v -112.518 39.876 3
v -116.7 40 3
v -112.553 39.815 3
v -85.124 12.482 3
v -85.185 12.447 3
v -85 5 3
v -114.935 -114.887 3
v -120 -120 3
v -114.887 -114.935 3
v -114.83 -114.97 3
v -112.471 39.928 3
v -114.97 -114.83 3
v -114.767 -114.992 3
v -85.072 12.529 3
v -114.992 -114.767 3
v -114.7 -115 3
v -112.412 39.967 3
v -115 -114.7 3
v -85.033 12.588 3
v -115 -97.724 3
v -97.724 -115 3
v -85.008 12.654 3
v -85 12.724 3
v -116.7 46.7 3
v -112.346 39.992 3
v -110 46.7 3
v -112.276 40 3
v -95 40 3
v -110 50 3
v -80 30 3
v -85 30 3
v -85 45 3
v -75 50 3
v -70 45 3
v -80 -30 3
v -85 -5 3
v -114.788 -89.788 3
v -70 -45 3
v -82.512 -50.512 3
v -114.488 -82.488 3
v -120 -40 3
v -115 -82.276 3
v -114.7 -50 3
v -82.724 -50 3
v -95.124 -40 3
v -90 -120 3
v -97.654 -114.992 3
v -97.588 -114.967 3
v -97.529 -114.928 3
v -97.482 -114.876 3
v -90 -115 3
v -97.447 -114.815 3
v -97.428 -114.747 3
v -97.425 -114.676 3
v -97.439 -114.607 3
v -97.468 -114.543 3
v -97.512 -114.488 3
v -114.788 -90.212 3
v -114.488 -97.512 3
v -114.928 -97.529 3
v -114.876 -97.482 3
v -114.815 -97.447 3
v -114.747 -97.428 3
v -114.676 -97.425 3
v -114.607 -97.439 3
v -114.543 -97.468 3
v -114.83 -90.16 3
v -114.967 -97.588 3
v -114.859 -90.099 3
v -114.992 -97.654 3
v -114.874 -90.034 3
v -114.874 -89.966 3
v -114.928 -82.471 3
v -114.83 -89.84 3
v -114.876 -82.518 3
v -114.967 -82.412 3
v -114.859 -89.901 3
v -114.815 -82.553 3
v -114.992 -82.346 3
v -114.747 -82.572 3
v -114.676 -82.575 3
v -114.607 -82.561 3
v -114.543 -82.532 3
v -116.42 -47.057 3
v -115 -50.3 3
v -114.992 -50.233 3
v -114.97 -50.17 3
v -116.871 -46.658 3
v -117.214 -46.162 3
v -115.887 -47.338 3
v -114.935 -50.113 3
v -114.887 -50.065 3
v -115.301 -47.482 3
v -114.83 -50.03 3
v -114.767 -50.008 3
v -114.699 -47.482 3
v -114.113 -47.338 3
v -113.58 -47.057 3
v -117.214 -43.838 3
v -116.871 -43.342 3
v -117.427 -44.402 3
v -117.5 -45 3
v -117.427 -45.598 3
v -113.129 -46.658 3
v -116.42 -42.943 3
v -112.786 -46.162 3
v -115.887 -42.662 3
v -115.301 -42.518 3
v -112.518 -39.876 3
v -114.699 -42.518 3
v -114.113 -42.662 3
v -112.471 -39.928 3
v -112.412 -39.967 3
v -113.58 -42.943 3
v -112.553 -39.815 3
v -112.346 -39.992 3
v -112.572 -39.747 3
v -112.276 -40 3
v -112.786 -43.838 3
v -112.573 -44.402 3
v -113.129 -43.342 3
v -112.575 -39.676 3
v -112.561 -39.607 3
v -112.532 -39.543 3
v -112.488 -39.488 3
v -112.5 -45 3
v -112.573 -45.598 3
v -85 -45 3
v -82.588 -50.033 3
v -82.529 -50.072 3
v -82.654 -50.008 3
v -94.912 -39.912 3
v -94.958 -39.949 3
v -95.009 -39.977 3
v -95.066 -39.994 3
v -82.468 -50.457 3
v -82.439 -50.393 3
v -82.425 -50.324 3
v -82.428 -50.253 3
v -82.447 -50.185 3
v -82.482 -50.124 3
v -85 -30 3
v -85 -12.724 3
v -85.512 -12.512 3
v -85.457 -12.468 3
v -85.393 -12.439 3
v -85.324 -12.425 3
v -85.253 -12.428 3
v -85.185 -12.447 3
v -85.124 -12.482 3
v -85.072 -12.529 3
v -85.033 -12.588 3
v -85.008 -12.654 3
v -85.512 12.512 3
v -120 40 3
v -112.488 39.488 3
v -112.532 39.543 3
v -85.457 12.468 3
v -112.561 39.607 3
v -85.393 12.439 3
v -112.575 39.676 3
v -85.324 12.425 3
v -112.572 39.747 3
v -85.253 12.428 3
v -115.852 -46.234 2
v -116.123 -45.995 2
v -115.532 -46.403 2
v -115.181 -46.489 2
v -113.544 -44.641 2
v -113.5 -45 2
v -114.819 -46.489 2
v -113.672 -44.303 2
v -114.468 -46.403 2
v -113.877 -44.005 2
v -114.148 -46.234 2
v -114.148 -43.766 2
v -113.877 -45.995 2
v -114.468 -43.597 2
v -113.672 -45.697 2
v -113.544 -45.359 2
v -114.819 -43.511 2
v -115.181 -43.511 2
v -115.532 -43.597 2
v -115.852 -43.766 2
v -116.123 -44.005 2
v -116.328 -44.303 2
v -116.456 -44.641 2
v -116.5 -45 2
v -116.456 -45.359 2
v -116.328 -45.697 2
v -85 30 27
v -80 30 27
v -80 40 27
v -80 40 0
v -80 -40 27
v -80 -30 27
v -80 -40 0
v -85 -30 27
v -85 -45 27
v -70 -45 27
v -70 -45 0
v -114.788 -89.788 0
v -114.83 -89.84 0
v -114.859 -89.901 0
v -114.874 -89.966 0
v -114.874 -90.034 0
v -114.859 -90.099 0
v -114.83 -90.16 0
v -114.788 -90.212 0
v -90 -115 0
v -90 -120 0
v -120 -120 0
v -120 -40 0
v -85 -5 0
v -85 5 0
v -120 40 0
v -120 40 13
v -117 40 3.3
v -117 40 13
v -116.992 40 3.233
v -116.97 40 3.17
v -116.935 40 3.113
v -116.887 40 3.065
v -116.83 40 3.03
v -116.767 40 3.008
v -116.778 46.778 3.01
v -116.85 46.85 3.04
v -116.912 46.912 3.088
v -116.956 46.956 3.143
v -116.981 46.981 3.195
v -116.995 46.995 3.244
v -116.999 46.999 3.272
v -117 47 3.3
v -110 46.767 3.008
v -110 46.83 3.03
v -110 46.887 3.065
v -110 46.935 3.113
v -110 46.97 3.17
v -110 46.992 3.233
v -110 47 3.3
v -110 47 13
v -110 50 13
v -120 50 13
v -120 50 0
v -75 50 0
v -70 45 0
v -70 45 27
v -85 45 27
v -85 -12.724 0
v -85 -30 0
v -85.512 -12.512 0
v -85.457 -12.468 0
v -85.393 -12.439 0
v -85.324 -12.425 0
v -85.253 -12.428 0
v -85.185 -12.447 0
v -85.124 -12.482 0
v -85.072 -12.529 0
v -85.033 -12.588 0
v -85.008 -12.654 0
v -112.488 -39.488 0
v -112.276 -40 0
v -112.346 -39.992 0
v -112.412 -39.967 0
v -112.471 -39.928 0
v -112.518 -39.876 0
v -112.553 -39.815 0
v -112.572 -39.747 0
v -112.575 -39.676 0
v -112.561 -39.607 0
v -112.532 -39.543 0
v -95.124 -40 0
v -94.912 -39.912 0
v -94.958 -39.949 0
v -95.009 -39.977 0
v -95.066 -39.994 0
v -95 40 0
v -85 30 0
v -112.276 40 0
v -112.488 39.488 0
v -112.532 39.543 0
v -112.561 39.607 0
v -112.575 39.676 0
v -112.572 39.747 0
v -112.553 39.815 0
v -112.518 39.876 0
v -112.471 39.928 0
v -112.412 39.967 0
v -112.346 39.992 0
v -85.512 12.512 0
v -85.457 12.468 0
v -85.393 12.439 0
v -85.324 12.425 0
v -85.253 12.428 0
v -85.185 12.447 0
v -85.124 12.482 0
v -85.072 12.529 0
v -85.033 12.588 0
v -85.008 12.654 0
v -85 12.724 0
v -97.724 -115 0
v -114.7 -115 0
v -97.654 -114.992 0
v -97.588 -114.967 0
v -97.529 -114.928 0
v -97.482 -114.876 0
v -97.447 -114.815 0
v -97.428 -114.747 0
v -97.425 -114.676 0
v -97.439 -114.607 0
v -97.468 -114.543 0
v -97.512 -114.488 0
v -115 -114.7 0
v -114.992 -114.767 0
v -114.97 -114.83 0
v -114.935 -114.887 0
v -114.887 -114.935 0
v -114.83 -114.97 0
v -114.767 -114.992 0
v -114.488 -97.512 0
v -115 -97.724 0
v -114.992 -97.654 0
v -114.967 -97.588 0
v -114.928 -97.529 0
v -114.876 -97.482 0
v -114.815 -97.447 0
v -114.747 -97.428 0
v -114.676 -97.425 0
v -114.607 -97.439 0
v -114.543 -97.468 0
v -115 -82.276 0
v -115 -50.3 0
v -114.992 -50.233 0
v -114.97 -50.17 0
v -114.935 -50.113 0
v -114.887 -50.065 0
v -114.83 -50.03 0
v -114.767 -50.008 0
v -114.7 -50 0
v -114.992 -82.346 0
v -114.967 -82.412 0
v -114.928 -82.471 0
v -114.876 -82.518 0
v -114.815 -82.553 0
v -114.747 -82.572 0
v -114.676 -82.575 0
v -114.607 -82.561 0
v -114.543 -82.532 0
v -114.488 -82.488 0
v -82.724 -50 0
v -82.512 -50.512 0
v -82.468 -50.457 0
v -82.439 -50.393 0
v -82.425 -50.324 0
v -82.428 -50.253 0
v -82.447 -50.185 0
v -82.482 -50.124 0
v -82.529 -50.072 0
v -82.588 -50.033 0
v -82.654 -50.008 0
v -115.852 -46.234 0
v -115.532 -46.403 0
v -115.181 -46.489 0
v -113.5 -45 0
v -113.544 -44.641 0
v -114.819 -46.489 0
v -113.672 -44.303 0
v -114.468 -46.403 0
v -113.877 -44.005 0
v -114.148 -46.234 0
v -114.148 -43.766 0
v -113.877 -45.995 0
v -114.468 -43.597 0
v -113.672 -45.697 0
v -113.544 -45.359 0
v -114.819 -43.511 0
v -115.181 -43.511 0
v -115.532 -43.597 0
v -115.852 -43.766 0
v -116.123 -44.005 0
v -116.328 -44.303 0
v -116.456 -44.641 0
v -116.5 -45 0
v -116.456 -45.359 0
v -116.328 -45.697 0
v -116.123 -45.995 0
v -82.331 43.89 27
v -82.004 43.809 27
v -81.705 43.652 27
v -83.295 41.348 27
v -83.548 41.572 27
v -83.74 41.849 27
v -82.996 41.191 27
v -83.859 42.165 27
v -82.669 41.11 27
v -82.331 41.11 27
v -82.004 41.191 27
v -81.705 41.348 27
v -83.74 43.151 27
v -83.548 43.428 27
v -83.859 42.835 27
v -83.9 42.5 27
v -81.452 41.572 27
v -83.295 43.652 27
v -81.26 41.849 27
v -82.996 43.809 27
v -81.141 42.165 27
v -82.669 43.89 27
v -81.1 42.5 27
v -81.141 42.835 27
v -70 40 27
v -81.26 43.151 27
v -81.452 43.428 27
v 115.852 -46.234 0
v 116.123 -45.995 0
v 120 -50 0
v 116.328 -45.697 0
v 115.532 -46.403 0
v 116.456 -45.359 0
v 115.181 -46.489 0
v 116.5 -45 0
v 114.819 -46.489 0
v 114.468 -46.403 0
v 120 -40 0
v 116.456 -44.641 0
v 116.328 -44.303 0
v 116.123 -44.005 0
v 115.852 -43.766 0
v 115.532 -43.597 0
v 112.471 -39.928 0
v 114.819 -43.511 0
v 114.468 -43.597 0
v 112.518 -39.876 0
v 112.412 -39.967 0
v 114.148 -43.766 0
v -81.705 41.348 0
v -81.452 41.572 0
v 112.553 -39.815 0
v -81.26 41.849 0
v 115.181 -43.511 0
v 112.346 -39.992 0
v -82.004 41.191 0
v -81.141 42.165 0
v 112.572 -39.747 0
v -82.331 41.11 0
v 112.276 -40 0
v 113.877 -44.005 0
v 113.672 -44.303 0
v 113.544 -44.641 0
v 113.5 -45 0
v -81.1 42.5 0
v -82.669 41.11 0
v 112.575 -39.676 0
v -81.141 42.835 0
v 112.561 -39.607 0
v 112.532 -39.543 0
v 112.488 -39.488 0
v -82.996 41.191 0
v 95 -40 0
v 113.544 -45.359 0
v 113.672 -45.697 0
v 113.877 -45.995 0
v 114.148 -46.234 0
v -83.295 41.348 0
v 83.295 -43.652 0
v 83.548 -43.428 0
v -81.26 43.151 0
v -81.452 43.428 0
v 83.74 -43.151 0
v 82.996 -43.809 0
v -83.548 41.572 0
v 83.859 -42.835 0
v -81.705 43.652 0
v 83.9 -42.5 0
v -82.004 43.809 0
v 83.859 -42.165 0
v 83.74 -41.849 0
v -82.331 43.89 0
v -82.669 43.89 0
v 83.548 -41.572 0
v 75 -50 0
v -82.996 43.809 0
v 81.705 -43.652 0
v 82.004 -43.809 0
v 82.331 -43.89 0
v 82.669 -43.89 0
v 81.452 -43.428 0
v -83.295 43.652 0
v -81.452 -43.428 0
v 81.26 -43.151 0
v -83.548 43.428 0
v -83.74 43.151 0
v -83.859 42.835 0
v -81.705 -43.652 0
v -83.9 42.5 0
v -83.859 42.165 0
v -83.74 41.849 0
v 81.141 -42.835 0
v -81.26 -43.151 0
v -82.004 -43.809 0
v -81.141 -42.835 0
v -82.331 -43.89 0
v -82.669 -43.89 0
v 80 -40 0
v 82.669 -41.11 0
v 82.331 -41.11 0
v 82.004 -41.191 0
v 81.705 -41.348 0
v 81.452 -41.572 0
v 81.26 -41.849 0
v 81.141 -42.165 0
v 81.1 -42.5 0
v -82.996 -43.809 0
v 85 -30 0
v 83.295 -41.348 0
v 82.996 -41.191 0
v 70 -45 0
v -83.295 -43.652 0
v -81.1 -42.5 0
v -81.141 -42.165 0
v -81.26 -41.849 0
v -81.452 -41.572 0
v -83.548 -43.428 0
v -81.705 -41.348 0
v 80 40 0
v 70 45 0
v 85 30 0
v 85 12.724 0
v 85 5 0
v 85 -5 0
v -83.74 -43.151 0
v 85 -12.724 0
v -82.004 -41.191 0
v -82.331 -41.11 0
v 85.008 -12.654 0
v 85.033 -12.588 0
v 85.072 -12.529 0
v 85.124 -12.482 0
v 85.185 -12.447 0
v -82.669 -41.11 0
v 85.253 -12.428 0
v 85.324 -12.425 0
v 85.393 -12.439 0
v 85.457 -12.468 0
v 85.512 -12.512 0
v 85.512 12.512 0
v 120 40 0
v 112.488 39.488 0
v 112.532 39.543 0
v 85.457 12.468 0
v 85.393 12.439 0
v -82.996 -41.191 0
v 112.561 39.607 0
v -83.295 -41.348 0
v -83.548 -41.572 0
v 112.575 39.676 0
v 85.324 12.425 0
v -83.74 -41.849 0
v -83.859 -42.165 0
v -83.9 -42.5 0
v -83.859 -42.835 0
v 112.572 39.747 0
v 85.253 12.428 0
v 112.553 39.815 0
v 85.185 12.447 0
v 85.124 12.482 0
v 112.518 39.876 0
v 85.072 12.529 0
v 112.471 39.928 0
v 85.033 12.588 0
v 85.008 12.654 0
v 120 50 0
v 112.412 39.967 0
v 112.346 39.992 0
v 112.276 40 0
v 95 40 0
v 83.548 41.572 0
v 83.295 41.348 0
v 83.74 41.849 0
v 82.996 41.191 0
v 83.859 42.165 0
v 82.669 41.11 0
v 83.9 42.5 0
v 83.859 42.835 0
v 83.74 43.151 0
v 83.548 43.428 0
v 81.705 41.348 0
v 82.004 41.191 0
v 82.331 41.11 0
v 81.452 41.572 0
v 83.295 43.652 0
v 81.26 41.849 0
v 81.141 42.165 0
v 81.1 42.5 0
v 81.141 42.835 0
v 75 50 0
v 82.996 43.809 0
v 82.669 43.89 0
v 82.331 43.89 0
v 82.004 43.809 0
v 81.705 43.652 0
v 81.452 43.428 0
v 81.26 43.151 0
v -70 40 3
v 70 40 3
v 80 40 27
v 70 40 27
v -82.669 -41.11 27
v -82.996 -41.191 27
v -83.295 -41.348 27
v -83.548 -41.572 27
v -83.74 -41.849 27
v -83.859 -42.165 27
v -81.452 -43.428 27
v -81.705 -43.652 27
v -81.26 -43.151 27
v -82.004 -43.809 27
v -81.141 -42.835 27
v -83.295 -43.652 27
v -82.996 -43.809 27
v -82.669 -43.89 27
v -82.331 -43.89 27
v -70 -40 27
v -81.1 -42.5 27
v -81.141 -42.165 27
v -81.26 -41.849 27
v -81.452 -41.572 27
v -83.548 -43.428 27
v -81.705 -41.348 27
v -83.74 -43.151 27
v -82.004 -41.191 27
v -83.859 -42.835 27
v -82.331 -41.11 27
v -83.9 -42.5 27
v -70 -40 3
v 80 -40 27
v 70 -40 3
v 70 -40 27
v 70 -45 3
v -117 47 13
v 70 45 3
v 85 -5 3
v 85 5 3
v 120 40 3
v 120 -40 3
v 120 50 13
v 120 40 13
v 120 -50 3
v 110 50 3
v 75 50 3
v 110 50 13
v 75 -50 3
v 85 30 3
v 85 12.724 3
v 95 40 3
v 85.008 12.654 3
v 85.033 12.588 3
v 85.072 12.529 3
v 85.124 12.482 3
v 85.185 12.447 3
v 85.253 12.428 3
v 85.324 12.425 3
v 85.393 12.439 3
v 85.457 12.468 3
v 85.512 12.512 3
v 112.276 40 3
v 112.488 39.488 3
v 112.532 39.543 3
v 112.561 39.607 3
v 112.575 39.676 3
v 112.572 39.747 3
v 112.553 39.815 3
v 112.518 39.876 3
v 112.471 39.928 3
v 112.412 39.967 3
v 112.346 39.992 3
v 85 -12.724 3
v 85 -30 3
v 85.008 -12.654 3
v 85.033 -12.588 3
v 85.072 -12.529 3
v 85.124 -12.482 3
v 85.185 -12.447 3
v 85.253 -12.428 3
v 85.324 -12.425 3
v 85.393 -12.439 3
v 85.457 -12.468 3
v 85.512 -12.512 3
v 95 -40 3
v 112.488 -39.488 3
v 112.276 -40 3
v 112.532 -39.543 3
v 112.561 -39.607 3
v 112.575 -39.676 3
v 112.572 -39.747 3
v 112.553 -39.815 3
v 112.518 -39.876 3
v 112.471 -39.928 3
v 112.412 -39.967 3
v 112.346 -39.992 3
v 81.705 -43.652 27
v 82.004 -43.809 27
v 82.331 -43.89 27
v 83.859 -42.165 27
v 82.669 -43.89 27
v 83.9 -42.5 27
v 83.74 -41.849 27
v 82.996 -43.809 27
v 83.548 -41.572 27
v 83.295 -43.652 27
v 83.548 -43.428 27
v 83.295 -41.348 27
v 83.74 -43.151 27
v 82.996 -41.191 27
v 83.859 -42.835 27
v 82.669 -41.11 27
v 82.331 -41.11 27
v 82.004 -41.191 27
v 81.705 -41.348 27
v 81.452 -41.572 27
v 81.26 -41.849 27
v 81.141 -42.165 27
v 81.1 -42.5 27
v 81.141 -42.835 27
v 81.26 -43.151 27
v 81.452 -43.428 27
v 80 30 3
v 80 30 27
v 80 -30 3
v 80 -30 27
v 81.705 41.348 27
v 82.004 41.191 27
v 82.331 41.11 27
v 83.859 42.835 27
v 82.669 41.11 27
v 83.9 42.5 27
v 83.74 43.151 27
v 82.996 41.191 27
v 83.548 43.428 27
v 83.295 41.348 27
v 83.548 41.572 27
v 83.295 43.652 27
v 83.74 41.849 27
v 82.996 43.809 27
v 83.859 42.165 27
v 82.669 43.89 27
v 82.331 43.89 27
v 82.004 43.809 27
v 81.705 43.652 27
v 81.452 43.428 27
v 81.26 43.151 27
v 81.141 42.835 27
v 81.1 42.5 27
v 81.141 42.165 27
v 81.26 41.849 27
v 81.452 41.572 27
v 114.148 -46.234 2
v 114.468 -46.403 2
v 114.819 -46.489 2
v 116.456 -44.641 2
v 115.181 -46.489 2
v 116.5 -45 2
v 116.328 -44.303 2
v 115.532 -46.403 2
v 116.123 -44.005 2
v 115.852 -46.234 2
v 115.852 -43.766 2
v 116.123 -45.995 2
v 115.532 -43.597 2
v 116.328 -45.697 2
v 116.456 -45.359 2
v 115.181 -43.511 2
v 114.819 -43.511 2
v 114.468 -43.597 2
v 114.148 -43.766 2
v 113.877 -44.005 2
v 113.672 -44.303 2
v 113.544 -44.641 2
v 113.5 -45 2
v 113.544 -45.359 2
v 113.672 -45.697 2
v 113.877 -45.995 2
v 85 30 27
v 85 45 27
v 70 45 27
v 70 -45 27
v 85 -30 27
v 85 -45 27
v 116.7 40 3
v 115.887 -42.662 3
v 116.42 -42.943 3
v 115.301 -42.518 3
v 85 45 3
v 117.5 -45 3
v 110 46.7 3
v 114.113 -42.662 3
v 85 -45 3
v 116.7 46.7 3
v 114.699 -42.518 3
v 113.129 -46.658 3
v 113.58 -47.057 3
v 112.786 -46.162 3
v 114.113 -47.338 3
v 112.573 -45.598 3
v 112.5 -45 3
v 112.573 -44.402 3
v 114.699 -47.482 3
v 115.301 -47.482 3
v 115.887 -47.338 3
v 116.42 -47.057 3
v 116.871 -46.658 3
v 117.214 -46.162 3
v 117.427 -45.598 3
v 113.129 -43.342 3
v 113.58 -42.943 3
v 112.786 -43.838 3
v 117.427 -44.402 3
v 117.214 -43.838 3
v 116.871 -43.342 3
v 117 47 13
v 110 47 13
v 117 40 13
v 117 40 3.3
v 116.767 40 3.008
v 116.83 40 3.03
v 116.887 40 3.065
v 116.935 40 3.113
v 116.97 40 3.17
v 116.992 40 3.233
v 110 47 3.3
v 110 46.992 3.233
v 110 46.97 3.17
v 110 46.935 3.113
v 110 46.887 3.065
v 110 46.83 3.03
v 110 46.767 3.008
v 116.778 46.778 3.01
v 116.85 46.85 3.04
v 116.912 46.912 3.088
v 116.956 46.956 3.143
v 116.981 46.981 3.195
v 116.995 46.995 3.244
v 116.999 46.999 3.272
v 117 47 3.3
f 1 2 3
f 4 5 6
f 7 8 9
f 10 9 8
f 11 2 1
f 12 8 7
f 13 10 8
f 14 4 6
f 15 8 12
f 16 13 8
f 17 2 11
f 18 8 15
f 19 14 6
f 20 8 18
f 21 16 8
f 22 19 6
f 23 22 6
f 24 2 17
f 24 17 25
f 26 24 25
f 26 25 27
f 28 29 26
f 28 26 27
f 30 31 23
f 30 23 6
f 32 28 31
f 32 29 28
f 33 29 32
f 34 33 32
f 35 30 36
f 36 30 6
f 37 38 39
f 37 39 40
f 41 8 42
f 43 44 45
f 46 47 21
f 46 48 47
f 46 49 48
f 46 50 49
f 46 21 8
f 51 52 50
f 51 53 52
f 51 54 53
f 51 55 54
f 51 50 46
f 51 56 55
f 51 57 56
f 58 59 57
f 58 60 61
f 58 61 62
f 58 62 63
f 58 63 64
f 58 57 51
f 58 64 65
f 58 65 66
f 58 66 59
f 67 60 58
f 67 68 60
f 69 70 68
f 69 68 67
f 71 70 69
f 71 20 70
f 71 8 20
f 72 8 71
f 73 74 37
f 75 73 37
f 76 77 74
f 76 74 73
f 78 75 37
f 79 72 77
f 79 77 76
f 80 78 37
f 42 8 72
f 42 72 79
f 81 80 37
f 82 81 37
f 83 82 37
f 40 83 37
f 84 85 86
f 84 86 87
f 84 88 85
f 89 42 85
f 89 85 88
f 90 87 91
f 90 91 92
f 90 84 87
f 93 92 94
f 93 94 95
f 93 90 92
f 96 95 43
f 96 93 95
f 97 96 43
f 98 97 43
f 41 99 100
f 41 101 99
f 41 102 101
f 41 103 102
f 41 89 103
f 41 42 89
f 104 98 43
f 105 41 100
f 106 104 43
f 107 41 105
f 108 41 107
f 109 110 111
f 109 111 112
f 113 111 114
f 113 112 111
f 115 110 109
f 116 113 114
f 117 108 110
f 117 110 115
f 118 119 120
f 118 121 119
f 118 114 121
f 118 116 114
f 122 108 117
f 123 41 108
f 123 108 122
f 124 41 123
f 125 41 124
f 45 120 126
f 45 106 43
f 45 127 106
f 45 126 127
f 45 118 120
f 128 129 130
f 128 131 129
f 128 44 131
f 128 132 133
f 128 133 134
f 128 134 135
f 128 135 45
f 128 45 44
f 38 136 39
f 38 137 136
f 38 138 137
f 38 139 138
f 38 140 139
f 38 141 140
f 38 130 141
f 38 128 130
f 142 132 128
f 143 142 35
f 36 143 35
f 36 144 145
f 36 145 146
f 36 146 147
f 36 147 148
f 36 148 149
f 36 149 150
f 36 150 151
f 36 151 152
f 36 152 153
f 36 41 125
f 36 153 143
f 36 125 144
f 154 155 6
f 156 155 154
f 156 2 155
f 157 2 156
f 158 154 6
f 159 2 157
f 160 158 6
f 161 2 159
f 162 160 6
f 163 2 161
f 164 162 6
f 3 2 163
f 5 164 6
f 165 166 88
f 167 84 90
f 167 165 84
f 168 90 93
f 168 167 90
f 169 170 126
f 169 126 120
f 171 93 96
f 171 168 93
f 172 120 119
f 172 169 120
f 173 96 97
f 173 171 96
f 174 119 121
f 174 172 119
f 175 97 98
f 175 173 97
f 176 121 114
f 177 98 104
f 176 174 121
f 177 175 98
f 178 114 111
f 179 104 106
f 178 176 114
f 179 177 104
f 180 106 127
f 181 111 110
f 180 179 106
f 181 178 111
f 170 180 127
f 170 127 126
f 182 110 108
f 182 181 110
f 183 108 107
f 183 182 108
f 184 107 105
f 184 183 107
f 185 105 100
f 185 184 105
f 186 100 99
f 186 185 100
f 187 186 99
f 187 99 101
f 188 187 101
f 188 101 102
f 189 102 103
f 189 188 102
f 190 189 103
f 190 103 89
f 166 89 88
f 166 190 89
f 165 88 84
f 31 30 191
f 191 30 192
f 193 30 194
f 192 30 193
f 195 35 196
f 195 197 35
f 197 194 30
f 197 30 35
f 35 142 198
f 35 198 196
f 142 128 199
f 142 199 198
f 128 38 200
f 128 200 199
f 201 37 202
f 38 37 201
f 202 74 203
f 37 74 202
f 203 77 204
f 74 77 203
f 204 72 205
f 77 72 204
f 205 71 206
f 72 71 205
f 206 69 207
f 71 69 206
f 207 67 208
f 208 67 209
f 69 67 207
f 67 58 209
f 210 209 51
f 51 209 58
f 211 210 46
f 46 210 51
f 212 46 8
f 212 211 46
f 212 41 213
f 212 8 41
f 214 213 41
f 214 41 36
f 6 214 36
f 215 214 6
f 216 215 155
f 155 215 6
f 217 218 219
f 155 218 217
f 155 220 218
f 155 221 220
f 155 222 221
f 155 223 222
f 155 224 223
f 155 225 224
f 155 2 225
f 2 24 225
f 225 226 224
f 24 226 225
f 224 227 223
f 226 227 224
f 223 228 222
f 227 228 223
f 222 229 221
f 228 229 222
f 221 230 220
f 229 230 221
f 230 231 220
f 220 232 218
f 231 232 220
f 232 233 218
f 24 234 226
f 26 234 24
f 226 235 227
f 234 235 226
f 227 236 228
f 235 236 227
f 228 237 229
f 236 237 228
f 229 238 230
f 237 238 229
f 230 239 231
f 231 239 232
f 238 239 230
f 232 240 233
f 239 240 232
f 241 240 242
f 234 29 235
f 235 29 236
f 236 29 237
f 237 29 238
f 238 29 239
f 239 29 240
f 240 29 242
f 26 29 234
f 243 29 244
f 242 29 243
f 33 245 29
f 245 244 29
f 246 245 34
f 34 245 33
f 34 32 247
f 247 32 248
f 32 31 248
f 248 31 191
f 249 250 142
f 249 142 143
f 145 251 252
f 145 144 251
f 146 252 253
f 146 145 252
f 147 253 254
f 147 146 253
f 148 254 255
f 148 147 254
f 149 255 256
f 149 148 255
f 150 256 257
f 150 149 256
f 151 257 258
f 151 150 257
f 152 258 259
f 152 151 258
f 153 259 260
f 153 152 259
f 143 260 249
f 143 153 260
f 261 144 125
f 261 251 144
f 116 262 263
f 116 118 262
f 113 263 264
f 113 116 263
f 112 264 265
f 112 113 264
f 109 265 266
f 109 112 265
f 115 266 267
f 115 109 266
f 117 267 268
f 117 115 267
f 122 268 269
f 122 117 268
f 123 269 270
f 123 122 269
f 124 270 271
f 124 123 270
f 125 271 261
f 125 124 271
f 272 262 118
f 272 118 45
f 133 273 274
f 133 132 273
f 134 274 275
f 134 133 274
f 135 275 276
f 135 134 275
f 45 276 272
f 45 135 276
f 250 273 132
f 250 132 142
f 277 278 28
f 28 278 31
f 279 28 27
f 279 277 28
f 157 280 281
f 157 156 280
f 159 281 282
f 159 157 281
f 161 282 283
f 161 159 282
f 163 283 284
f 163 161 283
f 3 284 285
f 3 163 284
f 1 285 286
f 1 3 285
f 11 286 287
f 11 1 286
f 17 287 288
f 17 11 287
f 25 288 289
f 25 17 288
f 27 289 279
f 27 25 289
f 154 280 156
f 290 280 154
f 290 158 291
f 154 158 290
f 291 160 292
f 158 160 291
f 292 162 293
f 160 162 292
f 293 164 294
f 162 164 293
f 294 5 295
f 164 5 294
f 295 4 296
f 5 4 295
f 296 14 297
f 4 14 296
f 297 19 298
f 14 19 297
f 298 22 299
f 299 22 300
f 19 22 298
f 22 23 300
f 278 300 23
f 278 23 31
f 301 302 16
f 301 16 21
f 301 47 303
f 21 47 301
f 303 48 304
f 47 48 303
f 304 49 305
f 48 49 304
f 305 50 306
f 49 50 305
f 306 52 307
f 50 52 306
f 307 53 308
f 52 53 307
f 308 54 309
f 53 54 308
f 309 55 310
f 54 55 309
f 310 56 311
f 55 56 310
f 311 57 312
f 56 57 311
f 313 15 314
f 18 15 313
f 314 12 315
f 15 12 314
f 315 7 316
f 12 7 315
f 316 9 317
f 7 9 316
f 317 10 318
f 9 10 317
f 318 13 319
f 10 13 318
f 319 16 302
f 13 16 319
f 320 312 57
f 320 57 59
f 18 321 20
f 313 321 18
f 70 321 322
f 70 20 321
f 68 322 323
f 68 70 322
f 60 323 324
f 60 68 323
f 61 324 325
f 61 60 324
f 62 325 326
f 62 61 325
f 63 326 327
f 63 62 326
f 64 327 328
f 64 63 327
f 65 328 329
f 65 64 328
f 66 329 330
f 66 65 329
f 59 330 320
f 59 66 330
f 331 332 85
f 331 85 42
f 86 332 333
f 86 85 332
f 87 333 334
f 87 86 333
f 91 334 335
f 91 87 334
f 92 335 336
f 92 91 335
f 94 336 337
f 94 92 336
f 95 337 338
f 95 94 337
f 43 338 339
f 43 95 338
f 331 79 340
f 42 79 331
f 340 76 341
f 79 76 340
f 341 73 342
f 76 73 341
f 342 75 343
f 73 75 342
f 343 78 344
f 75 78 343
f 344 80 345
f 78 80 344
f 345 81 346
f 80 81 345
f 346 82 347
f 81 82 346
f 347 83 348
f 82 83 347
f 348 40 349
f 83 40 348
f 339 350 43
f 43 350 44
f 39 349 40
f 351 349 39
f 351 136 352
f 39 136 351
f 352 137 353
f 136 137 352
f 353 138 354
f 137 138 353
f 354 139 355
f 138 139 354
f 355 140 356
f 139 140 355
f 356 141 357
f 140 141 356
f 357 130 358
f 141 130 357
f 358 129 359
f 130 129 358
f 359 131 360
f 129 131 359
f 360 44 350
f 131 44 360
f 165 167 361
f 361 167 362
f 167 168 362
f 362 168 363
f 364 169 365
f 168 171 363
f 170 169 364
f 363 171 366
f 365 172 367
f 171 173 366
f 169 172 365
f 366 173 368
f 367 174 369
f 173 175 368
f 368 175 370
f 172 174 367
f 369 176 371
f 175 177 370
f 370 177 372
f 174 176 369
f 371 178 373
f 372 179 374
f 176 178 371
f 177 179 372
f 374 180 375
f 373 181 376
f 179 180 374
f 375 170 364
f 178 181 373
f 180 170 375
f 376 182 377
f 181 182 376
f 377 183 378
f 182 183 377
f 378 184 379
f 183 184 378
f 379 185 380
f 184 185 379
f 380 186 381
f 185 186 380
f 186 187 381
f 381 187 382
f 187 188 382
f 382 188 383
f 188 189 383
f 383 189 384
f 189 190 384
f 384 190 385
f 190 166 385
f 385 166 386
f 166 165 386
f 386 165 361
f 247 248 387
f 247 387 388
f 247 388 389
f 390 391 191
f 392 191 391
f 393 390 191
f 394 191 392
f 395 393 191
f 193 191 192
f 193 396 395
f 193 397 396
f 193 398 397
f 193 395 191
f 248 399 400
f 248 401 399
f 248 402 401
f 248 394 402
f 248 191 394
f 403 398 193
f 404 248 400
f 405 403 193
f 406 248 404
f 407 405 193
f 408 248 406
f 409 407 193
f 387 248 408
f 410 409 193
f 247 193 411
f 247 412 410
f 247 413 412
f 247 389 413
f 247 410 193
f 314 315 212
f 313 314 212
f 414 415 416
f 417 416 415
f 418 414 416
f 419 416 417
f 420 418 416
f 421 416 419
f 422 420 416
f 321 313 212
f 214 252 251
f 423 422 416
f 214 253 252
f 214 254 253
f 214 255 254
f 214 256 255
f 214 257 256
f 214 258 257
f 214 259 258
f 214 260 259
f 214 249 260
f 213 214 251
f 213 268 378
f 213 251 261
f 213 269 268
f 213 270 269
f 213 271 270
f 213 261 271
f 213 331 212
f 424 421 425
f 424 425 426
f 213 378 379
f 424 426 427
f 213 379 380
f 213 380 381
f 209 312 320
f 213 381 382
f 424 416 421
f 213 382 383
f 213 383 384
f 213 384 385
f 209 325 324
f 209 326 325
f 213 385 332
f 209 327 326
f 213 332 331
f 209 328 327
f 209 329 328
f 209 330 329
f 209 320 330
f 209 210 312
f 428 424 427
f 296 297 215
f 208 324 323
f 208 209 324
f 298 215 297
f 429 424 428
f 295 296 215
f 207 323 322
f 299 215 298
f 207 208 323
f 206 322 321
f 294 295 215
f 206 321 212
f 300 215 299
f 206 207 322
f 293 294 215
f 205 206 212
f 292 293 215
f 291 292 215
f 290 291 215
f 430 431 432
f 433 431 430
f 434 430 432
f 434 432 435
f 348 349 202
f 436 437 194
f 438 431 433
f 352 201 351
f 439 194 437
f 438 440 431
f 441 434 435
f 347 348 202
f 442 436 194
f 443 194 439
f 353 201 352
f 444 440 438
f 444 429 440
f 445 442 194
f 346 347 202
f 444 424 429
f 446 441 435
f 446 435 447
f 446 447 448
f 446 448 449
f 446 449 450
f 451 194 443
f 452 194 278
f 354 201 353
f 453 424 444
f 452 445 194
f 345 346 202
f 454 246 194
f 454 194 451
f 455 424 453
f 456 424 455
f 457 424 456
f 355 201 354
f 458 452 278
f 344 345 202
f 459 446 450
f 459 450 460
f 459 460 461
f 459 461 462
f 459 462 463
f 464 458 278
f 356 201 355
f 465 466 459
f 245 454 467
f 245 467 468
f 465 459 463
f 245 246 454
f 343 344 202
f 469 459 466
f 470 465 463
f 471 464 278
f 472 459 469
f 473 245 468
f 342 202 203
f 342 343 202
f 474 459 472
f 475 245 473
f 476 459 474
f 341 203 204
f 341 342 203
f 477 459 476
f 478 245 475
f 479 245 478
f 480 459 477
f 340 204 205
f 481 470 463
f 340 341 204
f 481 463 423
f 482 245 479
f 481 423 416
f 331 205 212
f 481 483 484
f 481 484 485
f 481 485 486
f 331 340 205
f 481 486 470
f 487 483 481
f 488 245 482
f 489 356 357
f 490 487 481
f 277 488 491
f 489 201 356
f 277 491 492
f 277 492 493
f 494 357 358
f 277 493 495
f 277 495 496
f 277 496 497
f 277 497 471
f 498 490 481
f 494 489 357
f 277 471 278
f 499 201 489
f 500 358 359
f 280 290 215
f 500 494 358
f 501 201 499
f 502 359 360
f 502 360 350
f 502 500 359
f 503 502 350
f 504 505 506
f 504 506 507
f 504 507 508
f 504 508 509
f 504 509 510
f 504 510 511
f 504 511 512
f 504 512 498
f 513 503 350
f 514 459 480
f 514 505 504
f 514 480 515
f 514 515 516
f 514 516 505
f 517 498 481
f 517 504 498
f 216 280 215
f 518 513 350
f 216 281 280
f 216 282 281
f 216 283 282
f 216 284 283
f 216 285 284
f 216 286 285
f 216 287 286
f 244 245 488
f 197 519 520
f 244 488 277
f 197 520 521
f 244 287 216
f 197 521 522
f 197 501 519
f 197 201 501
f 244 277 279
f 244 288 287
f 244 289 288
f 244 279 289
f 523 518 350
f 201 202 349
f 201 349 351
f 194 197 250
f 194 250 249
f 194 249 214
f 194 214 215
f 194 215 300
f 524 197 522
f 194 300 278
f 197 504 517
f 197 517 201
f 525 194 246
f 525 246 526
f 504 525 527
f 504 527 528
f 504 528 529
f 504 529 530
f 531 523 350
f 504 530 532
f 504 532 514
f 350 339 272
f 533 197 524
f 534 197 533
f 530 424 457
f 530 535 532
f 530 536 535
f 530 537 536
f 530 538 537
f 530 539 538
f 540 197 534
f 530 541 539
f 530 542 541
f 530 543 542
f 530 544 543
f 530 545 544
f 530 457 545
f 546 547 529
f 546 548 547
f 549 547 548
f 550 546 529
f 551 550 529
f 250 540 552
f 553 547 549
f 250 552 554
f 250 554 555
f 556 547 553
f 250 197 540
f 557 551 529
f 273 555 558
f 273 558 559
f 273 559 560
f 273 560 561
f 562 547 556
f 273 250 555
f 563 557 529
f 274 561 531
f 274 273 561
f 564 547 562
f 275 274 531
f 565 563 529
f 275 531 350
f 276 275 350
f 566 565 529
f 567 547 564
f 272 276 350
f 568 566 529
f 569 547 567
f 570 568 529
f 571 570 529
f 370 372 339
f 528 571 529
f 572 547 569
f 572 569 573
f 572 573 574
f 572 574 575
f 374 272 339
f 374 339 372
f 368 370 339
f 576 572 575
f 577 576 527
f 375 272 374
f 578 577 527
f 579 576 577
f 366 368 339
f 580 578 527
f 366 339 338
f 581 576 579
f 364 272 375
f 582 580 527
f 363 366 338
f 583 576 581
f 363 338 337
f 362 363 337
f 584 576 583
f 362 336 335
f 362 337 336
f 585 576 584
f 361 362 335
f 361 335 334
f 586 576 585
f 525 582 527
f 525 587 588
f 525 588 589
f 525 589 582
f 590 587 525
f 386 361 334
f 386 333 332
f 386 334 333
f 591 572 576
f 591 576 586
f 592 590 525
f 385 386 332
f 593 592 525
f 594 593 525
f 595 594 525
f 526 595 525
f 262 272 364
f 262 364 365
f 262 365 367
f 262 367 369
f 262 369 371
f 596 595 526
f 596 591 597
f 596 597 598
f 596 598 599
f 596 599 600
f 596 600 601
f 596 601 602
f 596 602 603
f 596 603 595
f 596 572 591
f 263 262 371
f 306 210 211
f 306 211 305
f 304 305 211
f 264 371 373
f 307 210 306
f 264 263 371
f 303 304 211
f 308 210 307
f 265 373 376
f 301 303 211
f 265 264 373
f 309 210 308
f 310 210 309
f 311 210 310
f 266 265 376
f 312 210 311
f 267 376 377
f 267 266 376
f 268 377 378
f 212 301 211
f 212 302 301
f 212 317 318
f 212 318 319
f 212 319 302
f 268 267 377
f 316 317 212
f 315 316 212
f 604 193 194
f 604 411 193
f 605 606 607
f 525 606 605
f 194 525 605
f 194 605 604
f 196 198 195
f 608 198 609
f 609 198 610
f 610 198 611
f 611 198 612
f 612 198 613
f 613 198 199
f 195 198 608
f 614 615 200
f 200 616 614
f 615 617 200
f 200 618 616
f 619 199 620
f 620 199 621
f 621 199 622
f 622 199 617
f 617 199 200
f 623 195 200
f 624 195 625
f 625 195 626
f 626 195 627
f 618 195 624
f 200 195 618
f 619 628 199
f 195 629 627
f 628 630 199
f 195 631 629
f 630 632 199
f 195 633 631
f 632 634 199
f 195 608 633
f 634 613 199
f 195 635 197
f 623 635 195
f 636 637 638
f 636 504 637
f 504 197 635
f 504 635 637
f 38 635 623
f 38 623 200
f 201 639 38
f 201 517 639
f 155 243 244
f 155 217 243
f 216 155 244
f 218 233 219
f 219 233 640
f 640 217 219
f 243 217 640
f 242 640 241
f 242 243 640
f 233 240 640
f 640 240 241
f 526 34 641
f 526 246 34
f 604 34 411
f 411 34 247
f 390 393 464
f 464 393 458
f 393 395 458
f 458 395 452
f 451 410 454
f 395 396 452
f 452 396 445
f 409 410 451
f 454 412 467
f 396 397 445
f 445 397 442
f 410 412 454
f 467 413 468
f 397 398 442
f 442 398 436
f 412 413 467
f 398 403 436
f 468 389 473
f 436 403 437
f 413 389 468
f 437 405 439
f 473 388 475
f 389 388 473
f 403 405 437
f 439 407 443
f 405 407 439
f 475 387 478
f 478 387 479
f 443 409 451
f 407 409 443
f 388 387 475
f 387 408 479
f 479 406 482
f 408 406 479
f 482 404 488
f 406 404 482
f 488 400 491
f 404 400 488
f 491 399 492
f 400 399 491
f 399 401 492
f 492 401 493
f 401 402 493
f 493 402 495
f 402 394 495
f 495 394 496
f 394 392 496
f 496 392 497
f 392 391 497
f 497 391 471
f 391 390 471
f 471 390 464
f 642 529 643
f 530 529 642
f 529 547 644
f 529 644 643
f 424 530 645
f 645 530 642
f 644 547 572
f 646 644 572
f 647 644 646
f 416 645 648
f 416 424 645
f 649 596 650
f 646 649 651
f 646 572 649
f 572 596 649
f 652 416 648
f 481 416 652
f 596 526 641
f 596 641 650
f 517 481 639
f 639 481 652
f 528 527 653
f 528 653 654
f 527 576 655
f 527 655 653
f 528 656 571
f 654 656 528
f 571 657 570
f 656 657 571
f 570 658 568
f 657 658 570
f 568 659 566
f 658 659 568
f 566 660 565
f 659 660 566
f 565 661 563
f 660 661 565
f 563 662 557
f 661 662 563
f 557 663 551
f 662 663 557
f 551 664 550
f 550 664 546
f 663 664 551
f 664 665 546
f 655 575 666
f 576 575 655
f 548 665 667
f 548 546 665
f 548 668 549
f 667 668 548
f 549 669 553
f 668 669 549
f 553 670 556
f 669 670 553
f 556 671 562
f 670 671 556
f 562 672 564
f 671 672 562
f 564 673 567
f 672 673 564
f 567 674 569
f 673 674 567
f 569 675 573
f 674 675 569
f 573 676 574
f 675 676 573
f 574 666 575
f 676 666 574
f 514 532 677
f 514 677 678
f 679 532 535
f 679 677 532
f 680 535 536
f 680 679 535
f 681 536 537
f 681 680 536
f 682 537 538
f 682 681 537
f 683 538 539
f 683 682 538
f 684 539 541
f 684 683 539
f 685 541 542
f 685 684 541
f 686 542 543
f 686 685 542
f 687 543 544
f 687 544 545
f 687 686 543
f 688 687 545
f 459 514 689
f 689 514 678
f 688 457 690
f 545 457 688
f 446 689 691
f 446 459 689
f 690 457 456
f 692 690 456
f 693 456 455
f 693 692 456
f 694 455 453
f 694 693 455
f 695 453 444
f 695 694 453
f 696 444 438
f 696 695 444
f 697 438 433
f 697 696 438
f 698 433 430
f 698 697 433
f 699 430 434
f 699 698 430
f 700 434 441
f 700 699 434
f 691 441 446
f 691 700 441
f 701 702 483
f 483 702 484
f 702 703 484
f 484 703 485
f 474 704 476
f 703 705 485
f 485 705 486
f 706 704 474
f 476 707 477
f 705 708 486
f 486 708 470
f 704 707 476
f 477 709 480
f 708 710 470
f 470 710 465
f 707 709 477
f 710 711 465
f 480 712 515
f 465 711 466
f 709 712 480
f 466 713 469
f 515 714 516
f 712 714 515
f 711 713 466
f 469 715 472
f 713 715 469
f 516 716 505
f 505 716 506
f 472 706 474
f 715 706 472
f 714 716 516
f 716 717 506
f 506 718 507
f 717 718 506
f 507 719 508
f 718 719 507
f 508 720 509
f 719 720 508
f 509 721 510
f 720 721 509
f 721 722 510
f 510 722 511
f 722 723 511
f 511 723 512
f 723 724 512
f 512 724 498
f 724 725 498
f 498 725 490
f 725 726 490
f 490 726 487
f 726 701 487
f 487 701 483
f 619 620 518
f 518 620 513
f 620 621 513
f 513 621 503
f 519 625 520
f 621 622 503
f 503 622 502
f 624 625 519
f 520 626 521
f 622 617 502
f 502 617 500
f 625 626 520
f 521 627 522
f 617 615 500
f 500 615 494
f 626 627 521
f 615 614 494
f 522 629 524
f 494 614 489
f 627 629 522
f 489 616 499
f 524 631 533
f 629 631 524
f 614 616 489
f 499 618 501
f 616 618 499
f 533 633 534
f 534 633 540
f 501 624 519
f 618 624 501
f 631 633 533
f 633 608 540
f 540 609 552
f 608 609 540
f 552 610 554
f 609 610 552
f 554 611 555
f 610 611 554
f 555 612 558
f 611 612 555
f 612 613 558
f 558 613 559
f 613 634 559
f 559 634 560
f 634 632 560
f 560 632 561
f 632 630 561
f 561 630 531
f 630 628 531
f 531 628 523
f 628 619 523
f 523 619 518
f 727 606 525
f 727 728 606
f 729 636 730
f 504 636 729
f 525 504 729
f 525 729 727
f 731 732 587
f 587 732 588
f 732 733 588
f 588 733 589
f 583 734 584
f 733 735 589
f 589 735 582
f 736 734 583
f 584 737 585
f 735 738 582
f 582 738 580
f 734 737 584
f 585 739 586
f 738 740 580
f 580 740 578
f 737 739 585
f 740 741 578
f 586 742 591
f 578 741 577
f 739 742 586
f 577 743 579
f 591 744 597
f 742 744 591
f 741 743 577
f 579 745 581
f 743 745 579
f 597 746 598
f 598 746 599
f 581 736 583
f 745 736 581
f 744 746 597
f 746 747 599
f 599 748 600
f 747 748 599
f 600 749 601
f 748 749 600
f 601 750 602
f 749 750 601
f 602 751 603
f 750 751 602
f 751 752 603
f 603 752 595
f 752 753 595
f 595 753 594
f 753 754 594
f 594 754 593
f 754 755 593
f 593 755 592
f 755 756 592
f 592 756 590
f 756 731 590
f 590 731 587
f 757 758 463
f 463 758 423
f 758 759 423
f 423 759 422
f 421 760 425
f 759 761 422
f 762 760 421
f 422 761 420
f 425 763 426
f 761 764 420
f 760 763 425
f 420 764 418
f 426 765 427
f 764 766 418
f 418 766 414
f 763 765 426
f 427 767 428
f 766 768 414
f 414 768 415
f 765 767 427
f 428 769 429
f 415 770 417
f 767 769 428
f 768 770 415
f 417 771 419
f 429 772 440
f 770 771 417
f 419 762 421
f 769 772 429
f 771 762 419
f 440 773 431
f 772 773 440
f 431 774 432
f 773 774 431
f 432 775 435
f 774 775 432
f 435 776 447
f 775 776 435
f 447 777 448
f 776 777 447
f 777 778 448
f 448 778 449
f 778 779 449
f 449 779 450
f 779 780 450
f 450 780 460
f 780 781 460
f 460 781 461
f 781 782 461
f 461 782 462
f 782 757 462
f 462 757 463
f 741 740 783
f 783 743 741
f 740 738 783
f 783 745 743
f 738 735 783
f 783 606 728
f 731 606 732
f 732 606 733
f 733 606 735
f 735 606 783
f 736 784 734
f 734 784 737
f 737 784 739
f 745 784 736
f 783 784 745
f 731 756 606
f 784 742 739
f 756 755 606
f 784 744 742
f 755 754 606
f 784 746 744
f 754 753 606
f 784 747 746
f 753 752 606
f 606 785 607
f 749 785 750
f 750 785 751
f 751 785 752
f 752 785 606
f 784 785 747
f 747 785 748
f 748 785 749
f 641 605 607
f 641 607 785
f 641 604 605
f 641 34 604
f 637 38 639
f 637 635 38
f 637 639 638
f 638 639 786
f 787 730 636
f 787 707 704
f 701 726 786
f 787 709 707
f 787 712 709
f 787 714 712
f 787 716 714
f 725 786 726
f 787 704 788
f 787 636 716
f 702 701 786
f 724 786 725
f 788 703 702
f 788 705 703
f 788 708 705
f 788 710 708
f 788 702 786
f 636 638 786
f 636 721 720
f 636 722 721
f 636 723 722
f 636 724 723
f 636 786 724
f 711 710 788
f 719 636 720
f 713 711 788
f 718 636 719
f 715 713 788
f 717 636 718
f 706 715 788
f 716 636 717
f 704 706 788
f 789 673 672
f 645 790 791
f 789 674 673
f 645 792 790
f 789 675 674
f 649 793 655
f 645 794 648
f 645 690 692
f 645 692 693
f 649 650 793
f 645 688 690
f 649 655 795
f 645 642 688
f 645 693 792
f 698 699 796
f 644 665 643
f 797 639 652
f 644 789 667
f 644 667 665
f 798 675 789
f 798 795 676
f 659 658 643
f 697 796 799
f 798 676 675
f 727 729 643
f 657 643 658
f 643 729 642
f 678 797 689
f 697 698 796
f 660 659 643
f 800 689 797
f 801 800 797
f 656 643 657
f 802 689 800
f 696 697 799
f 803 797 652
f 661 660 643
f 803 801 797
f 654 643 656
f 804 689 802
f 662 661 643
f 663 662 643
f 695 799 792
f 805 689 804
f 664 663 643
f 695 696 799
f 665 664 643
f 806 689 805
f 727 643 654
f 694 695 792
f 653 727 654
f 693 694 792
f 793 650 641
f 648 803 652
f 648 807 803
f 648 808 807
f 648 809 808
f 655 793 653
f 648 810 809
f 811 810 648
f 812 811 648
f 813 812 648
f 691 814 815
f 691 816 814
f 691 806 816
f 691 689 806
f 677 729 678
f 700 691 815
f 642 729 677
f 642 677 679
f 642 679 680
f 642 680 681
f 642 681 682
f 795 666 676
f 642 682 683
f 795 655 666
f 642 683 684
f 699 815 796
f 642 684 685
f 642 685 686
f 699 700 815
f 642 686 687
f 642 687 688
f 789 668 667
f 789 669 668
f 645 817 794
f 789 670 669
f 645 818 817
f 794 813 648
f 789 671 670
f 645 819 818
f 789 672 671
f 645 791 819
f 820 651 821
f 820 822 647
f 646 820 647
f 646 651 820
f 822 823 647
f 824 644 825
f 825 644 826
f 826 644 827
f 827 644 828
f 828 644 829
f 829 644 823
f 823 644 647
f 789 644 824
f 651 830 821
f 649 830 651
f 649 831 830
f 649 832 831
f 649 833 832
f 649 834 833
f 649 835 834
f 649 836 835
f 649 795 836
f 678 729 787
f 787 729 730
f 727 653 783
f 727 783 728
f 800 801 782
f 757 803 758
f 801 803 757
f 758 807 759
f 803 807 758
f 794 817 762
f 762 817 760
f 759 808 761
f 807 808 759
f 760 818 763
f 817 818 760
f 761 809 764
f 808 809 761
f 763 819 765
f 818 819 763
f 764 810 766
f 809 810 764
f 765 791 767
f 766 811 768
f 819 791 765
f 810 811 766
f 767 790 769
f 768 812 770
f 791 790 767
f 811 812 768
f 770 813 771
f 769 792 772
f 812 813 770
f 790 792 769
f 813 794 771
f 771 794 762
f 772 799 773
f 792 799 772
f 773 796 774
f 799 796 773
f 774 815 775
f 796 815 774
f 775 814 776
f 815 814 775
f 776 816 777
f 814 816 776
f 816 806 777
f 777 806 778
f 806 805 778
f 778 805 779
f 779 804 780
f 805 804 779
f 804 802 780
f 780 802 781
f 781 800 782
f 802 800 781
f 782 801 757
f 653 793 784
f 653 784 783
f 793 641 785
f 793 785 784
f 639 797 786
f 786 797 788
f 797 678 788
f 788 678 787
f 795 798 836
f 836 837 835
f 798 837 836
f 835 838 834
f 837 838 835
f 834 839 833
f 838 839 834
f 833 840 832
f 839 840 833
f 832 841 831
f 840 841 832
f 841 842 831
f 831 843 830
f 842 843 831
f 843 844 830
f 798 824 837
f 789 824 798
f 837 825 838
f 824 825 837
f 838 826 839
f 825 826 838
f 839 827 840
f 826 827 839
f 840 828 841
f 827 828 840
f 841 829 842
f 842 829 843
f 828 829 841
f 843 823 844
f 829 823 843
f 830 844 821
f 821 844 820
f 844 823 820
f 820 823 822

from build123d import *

# Parameters (mm, degrees)
SKETCH003_W     = 170
SKETCH003_H     = 90
SKETCH003_W_2   = 160
SKETCH003_H_2   = 80
PAD_DEPTH       = 3
PAD001_DEPTH    = 3
PAD002_DEPTH    = 3
PAD003_DEPTH    = 3
PAD004_DEPTH    = 3
PAD005_DEPTH    = 10
PAD006_DEPTH    = 10
PAD007_DEPTH    = 24
SKETCH014_R     = 1.65
HOLE_DEPTH      = 30
SKETCH015_R     = 1.325
HOLE001_DEPTH   = 30
SKETCH016_R     = 1.325
HOLE002_DEPTH   = 30
SKETCH017_R     = 1.325
HOLE003_DEPTH   = 30
FILLET_R        = 0.3
FILLET001_R     = 0.3
FILLET002_R     = 0.3
FILLET003_R     = 0.3
FILLET004_R     = 0.3
FILLET005_R     = 0.3
FILLET006_R     = 0.3
FILLET007_R     = 0.3
FILLET008_R     = 0.3
FILLET009_R     = 0.3
SKETCH018_W     = 3.707428
SKETCH018_H     = 3.707435
PAD008_DEPTH    = 27
SKETCH019_W     = 4.325348
SKETCH019_H     = 3.769226
PAD009_DEPTH    = 27
SKETCH020_W     = 4.473305
SKETCH020_H     = 4.349049
PAD010_DEPTH    = 27
SKETCH021_W     = 3.413819
SKETCH021_H     = 3.638272
PAD011_DEPTH    = 27
SKETCH023_R     = 1.4
POCKET_DEPTH    = 30
SKETCH024_R     = 1.4
POCKET001_DEPTH = 30
SKETCH025_R     = 1.4
POCKET002_DEPTH = 30
SKETCH026_R     = 1.4
POCKET003_DEPTH = 30
SKETCH027_R     = 1.5
POCKET004_DEPTH = 5
CHAMFER_SIZE    = 1


with BuildPart() as part:
    # Sketch003 → Pad (new body)
    with BuildSketch(Plane.XY):
        Rectangle(SKETCH003_W, SKETCH003_H)
        Rectangle(SKETCH003_W_2, SKETCH003_H_2, mode=Mode.SUBTRACT)
    extrude(amount=PAD_DEPTH)

    # Sketch005 → Pad001 (join)
    with BuildSketch(Plane.XY):
        Polygon((-70, 45), (-75, 50), (-120, 50), (-120, 40), (-85, 5), (-85, 12), (-113, 40), (-95, 40), (-85, 30), (-85, 45), align=None)
    extrude(amount=PAD001_DEPTH)

    # Sketch007 → Pad002 (join)
    with BuildSketch(Plane.XY):
        Polygon((70, 45), (75, 50), (120, 50), (120, 40), (85, 5), (85, 12), (113, 40), (95, 40), (85, 30), (85, 45), align=None)
    extrude(amount=PAD002_DEPTH)

    # Sketch008 → Pad003 (join)
    with BuildSketch(Plane.XY):
        Polygon((70, -45), (75, -50), (120, -50), (120, -40), (85, -5), (85, -12), (113, -40), (95, -40), (85, -30), (85, -45), align=None)
    extrude(amount=PAD003_DEPTH)

    # Sketch009 → Pad004 (join)
    with BuildSketch(Plane.XY):
        Polygon((-70, -45), (-75, -50), (-115, -90), (-90, -115), (-90, -120), (-120, -120), (-120, -50), (-120, -40), (-85, -5), (-85, -12), (-113, -40), (-95, -40), (-85, -30), (-85, -45), align=None)
        Polygon((-115, -50), (-115, -83), (-82, -50), align=None, mode=Mode.SUBTRACT)
        Polygon((-115, -97), (-115, -115), (-97, -115), align=None, mode=Mode.SUBTRACT)
    extrude(amount=PAD004_DEPTH)

    # Sketch011 (on Face23 of Pad004) → Pad005 (join)
    with BuildSketch(Plane.XY.offset(3)):
        Polygon((-120, 50), (-120, 40), (-117, 40), (-117, 47), (-110, 47), (-110, 50), align=None)
    extrude(amount=PAD005_DEPTH)

    # Sketch012 (on Face22 of Pad005) → Pad006 (join)
    with BuildSketch(Plane.XY.offset(3)):
        Polygon((120, 50), (110, 50), (110, 47), (117, 47), (117, 40), (120, 40), align=None)
    extrude(amount=PAD006_DEPTH)

    # Sketch013 (on Face4 of Pad006) → Pad007 (join)
    with BuildSketch(Plane.XY.offset(3)):
        Polygon((-85, 45), (-85, 30), (-80, 30), (-80, 40), (-70, 40), (-70, 45), align=None)
        Polygon((85, 45), (85, 30), (80, 30), (80, 40), (70, 40), (70, 45), align=None)
        Polygon((85, -45), (85, -30), (80, -30), (80, -40), (70, -40), (70, -45), align=None)
        Polygon((-85, -45), (-85, -30), (-80, -30), (-80, -40), (-70, -40), (-70, -45), align=None)
    extrude(amount=PAD007_DEPTH)

    # Sketch014 (on Face80 of Pad007) → Hole (cut)
    with BuildSketch(Plane.XY.offset(27)):
        with Locations((-82.5, 42.5)):
            Circle(SKETCH014_R)
    extrude(amount=-HOLE_DEPTH, mode=Mode.SUBTRACT)

    # Sketch015 (on Face99 of Hole) → Hole001 (cut)
    with BuildSketch(Plane.XY.offset(27)):
        with Locations((-82.5, -42.5)):
            Circle(SKETCH015_R)
    extrude(amount=-HOLE001_DEPTH, mode=Mode.SUBTRACT)

    # Sketch016 (on Face84 of Hole001) → Hole002 (cut)
    with BuildSketch(Plane.XY.offset(27)):
        with Locations((82.5, 42.5)):
            Circle(SKETCH016_R)
    extrude(amount=-HOLE002_DEPTH, mode=Mode.SUBTRACT)

    # Sketch017 (on Face104 of Hole002) → Hole003 (cut)
    with BuildSketch(Plane.XY.offset(27)):
        with Locations((82.5, -42.5)):
            Circle(SKETCH017_R)
    extrude(amount=-HOLE003_DEPTH, mode=Mode.SUBTRACT)

    # Fillet
    fillet_edges = [part.edges().sort_by_distance(p)[0] for p in [
        (-115, -97, 1.5),
    ]]
    fillet(fillet_edges, radius=FILLET_R)

    # Fillet001
    fillet001_edges = [part.edges().sort_by_distance(p)[0] for p in [
        (-115, -115, 1.5),
    ]]
    fillet(fillet001_edges, radius=FILLET001_R)

    # Fillet002
    fillet002_edges = [part.edges().sort_by_distance(p)[0] for p in [
        (-97, -115, 1.5),
    ]]
    fillet(fillet002_edges, radius=FILLET002_R)

    # Fillet003
    fillet003_edges = [part.edges().sort_by_distance(p)[0] for p in [
        (-115, -90, 1.5),
    ]]
    fillet(fillet003_edges, radius=FILLET003_R)

    # Fillet004
    fillet004_edges = [part.edges().sort_by_distance(p)[0] for p in [
        (-115, -50, 1.5),
        (-115, -83, 1.5),
        (-82, -50, 1.5),
    ]]
    fillet(fillet004_edges, radius=FILLET004_R)

    # Fillet005
    fillet005_edges = [part.edges().sort_by_distance(p)[0] for p in [
        (-95, -40, 1.5),
        (-85, -12, 1.5),
        (-113, -40, 1.5),
    ]]
    fillet(fillet005_edges, radius=FILLET005_R)

    # Fillet006
    fillet006_edges = [part.edges().sort_by_distance(p)[0] for p in [
        (-117, 43.5, 3),
        (-113.5, 47, 3),
    ]]
    fillet(fillet006_edges, radius=FILLET006_R)

    # Fillet007
    fillet007_edges = [part.edges().sort_by_distance(p)[0] for p in [
        (-113, 40, 1.5),
        (-85, 12, 1.5),
    ]]
    fillet(fillet007_edges, radius=FILLET007_R)

    # Fillet008
    fillet008_edges = [part.edges().sort_by_distance(p)[0] for p in [
        (113.5, 47, 3),
        (117, 43.5, 3),
        (113, 40, 1.5),
        (85, 12, 1.5),
    ]]
    fillet(fillet008_edges, radius=FILLET008_R)

    # Fillet009
    fillet009_edges = [part.edges().sort_by_distance(p)[0] for p in [
        (113, -40, 1.5),
        (85, -12, 1.5),
    ]]
    fillet(fillet009_edges, radius=FILLET009_R)

    # Sketch018 (on Face81 of Fillet009) → Pad008 (join)
    with BuildSketch(Plane.XY.offset(27)):
        with Locations((82.542801, -42.437325)):
            Rectangle(SKETCH018_W, SKETCH018_H)
    extrude(amount=-PAD008_DEPTH)

    # Sketch019 (on Face37 of Pad008) → Pad009 (join)
    with BuildSketch(Plane.XY.offset(27)):
        with Locations((82.440964, 42.612553)):
            Rectangle(SKETCH019_W, SKETCH019_H)
    extrude(amount=-PAD009_DEPTH)

    # Sketch020 (on Face85 of Pad009) → Pad010 (join)
    with BuildSketch(Plane.XY.offset(27)):
        with Locations((-82.434589, 42.41842)):
            Rectangle(SKETCH020_W, SKETCH020_H)
    extrude(amount=-PAD010_DEPTH)

    # Sketch021 (on Face18 of Pad010) → Pad011 (join)
    with BuildSketch(Plane.XY.offset(27)):
        with Locations((-82.443809, -42.548483)):
            Rectangle(SKETCH021_W, SKETCH021_H)
    extrude(amount=-PAD011_DEPTH)

    # Sketch023 (on Face83 of Pad011) → Pocket (cut)
    with BuildSketch(Plane.XY.offset(27)):
        with Locations((-82.5, 42.5)):
            Circle(SKETCH023_R)
    extrude(amount=-POCKET_DEPTH, mode=Mode.SUBTRACT)

    # Sketch024 (on Face99 of Hole) → Pocket001 (cut)
    with BuildSketch(Plane.XY.offset(27)):
        with Locations((-82.5, -42.5)):
            Circle(SKETCH024_R)
    extrude(amount=-POCKET001_DEPTH, mode=Mode.SUBTRACT)

    # Sketch025 (on Face84 of Hole001) → Pocket002 (cut)
    with BuildSketch(Plane.XY.offset(27)):
        with Locations((82.5, 42.5)):
            Circle(SKETCH025_R)
    extrude(amount=-POCKET002_DEPTH, mode=Mode.SUBTRACT)

    # Sketch026 (on Face104 of Hole002) → Pocket003 (cut)
    with BuildSketch(Plane.XY.offset(27)):
        with Locations((82.5, -42.5)):
            Circle(SKETCH026_R)
    extrude(amount=-POCKET003_DEPTH, mode=Mode.SUBTRACT)

    # Sketch027 (on Face6 of Pocket003) → Pocket004 (cut)
    with BuildSketch(Plane.XY.offset(3)):
        with Locations((-115, -45)):
            Circle(SKETCH027_R)
        with Locations((115, -45)):
            Circle(SKETCH027_R)
    extrude(amount=-POCKET004_DEPTH, mode=Mode.SUBTRACT)

    # Chamfer
    chamfer_edges = [part.edges().sort_by_distance(p)[0] for p in [
        (-116.5, -45, 3),
        (113.5, -45, 3),
    ]]
    chamfer(chamfer_edges, length=CHAMFER_SIZE)


solid = part.part
